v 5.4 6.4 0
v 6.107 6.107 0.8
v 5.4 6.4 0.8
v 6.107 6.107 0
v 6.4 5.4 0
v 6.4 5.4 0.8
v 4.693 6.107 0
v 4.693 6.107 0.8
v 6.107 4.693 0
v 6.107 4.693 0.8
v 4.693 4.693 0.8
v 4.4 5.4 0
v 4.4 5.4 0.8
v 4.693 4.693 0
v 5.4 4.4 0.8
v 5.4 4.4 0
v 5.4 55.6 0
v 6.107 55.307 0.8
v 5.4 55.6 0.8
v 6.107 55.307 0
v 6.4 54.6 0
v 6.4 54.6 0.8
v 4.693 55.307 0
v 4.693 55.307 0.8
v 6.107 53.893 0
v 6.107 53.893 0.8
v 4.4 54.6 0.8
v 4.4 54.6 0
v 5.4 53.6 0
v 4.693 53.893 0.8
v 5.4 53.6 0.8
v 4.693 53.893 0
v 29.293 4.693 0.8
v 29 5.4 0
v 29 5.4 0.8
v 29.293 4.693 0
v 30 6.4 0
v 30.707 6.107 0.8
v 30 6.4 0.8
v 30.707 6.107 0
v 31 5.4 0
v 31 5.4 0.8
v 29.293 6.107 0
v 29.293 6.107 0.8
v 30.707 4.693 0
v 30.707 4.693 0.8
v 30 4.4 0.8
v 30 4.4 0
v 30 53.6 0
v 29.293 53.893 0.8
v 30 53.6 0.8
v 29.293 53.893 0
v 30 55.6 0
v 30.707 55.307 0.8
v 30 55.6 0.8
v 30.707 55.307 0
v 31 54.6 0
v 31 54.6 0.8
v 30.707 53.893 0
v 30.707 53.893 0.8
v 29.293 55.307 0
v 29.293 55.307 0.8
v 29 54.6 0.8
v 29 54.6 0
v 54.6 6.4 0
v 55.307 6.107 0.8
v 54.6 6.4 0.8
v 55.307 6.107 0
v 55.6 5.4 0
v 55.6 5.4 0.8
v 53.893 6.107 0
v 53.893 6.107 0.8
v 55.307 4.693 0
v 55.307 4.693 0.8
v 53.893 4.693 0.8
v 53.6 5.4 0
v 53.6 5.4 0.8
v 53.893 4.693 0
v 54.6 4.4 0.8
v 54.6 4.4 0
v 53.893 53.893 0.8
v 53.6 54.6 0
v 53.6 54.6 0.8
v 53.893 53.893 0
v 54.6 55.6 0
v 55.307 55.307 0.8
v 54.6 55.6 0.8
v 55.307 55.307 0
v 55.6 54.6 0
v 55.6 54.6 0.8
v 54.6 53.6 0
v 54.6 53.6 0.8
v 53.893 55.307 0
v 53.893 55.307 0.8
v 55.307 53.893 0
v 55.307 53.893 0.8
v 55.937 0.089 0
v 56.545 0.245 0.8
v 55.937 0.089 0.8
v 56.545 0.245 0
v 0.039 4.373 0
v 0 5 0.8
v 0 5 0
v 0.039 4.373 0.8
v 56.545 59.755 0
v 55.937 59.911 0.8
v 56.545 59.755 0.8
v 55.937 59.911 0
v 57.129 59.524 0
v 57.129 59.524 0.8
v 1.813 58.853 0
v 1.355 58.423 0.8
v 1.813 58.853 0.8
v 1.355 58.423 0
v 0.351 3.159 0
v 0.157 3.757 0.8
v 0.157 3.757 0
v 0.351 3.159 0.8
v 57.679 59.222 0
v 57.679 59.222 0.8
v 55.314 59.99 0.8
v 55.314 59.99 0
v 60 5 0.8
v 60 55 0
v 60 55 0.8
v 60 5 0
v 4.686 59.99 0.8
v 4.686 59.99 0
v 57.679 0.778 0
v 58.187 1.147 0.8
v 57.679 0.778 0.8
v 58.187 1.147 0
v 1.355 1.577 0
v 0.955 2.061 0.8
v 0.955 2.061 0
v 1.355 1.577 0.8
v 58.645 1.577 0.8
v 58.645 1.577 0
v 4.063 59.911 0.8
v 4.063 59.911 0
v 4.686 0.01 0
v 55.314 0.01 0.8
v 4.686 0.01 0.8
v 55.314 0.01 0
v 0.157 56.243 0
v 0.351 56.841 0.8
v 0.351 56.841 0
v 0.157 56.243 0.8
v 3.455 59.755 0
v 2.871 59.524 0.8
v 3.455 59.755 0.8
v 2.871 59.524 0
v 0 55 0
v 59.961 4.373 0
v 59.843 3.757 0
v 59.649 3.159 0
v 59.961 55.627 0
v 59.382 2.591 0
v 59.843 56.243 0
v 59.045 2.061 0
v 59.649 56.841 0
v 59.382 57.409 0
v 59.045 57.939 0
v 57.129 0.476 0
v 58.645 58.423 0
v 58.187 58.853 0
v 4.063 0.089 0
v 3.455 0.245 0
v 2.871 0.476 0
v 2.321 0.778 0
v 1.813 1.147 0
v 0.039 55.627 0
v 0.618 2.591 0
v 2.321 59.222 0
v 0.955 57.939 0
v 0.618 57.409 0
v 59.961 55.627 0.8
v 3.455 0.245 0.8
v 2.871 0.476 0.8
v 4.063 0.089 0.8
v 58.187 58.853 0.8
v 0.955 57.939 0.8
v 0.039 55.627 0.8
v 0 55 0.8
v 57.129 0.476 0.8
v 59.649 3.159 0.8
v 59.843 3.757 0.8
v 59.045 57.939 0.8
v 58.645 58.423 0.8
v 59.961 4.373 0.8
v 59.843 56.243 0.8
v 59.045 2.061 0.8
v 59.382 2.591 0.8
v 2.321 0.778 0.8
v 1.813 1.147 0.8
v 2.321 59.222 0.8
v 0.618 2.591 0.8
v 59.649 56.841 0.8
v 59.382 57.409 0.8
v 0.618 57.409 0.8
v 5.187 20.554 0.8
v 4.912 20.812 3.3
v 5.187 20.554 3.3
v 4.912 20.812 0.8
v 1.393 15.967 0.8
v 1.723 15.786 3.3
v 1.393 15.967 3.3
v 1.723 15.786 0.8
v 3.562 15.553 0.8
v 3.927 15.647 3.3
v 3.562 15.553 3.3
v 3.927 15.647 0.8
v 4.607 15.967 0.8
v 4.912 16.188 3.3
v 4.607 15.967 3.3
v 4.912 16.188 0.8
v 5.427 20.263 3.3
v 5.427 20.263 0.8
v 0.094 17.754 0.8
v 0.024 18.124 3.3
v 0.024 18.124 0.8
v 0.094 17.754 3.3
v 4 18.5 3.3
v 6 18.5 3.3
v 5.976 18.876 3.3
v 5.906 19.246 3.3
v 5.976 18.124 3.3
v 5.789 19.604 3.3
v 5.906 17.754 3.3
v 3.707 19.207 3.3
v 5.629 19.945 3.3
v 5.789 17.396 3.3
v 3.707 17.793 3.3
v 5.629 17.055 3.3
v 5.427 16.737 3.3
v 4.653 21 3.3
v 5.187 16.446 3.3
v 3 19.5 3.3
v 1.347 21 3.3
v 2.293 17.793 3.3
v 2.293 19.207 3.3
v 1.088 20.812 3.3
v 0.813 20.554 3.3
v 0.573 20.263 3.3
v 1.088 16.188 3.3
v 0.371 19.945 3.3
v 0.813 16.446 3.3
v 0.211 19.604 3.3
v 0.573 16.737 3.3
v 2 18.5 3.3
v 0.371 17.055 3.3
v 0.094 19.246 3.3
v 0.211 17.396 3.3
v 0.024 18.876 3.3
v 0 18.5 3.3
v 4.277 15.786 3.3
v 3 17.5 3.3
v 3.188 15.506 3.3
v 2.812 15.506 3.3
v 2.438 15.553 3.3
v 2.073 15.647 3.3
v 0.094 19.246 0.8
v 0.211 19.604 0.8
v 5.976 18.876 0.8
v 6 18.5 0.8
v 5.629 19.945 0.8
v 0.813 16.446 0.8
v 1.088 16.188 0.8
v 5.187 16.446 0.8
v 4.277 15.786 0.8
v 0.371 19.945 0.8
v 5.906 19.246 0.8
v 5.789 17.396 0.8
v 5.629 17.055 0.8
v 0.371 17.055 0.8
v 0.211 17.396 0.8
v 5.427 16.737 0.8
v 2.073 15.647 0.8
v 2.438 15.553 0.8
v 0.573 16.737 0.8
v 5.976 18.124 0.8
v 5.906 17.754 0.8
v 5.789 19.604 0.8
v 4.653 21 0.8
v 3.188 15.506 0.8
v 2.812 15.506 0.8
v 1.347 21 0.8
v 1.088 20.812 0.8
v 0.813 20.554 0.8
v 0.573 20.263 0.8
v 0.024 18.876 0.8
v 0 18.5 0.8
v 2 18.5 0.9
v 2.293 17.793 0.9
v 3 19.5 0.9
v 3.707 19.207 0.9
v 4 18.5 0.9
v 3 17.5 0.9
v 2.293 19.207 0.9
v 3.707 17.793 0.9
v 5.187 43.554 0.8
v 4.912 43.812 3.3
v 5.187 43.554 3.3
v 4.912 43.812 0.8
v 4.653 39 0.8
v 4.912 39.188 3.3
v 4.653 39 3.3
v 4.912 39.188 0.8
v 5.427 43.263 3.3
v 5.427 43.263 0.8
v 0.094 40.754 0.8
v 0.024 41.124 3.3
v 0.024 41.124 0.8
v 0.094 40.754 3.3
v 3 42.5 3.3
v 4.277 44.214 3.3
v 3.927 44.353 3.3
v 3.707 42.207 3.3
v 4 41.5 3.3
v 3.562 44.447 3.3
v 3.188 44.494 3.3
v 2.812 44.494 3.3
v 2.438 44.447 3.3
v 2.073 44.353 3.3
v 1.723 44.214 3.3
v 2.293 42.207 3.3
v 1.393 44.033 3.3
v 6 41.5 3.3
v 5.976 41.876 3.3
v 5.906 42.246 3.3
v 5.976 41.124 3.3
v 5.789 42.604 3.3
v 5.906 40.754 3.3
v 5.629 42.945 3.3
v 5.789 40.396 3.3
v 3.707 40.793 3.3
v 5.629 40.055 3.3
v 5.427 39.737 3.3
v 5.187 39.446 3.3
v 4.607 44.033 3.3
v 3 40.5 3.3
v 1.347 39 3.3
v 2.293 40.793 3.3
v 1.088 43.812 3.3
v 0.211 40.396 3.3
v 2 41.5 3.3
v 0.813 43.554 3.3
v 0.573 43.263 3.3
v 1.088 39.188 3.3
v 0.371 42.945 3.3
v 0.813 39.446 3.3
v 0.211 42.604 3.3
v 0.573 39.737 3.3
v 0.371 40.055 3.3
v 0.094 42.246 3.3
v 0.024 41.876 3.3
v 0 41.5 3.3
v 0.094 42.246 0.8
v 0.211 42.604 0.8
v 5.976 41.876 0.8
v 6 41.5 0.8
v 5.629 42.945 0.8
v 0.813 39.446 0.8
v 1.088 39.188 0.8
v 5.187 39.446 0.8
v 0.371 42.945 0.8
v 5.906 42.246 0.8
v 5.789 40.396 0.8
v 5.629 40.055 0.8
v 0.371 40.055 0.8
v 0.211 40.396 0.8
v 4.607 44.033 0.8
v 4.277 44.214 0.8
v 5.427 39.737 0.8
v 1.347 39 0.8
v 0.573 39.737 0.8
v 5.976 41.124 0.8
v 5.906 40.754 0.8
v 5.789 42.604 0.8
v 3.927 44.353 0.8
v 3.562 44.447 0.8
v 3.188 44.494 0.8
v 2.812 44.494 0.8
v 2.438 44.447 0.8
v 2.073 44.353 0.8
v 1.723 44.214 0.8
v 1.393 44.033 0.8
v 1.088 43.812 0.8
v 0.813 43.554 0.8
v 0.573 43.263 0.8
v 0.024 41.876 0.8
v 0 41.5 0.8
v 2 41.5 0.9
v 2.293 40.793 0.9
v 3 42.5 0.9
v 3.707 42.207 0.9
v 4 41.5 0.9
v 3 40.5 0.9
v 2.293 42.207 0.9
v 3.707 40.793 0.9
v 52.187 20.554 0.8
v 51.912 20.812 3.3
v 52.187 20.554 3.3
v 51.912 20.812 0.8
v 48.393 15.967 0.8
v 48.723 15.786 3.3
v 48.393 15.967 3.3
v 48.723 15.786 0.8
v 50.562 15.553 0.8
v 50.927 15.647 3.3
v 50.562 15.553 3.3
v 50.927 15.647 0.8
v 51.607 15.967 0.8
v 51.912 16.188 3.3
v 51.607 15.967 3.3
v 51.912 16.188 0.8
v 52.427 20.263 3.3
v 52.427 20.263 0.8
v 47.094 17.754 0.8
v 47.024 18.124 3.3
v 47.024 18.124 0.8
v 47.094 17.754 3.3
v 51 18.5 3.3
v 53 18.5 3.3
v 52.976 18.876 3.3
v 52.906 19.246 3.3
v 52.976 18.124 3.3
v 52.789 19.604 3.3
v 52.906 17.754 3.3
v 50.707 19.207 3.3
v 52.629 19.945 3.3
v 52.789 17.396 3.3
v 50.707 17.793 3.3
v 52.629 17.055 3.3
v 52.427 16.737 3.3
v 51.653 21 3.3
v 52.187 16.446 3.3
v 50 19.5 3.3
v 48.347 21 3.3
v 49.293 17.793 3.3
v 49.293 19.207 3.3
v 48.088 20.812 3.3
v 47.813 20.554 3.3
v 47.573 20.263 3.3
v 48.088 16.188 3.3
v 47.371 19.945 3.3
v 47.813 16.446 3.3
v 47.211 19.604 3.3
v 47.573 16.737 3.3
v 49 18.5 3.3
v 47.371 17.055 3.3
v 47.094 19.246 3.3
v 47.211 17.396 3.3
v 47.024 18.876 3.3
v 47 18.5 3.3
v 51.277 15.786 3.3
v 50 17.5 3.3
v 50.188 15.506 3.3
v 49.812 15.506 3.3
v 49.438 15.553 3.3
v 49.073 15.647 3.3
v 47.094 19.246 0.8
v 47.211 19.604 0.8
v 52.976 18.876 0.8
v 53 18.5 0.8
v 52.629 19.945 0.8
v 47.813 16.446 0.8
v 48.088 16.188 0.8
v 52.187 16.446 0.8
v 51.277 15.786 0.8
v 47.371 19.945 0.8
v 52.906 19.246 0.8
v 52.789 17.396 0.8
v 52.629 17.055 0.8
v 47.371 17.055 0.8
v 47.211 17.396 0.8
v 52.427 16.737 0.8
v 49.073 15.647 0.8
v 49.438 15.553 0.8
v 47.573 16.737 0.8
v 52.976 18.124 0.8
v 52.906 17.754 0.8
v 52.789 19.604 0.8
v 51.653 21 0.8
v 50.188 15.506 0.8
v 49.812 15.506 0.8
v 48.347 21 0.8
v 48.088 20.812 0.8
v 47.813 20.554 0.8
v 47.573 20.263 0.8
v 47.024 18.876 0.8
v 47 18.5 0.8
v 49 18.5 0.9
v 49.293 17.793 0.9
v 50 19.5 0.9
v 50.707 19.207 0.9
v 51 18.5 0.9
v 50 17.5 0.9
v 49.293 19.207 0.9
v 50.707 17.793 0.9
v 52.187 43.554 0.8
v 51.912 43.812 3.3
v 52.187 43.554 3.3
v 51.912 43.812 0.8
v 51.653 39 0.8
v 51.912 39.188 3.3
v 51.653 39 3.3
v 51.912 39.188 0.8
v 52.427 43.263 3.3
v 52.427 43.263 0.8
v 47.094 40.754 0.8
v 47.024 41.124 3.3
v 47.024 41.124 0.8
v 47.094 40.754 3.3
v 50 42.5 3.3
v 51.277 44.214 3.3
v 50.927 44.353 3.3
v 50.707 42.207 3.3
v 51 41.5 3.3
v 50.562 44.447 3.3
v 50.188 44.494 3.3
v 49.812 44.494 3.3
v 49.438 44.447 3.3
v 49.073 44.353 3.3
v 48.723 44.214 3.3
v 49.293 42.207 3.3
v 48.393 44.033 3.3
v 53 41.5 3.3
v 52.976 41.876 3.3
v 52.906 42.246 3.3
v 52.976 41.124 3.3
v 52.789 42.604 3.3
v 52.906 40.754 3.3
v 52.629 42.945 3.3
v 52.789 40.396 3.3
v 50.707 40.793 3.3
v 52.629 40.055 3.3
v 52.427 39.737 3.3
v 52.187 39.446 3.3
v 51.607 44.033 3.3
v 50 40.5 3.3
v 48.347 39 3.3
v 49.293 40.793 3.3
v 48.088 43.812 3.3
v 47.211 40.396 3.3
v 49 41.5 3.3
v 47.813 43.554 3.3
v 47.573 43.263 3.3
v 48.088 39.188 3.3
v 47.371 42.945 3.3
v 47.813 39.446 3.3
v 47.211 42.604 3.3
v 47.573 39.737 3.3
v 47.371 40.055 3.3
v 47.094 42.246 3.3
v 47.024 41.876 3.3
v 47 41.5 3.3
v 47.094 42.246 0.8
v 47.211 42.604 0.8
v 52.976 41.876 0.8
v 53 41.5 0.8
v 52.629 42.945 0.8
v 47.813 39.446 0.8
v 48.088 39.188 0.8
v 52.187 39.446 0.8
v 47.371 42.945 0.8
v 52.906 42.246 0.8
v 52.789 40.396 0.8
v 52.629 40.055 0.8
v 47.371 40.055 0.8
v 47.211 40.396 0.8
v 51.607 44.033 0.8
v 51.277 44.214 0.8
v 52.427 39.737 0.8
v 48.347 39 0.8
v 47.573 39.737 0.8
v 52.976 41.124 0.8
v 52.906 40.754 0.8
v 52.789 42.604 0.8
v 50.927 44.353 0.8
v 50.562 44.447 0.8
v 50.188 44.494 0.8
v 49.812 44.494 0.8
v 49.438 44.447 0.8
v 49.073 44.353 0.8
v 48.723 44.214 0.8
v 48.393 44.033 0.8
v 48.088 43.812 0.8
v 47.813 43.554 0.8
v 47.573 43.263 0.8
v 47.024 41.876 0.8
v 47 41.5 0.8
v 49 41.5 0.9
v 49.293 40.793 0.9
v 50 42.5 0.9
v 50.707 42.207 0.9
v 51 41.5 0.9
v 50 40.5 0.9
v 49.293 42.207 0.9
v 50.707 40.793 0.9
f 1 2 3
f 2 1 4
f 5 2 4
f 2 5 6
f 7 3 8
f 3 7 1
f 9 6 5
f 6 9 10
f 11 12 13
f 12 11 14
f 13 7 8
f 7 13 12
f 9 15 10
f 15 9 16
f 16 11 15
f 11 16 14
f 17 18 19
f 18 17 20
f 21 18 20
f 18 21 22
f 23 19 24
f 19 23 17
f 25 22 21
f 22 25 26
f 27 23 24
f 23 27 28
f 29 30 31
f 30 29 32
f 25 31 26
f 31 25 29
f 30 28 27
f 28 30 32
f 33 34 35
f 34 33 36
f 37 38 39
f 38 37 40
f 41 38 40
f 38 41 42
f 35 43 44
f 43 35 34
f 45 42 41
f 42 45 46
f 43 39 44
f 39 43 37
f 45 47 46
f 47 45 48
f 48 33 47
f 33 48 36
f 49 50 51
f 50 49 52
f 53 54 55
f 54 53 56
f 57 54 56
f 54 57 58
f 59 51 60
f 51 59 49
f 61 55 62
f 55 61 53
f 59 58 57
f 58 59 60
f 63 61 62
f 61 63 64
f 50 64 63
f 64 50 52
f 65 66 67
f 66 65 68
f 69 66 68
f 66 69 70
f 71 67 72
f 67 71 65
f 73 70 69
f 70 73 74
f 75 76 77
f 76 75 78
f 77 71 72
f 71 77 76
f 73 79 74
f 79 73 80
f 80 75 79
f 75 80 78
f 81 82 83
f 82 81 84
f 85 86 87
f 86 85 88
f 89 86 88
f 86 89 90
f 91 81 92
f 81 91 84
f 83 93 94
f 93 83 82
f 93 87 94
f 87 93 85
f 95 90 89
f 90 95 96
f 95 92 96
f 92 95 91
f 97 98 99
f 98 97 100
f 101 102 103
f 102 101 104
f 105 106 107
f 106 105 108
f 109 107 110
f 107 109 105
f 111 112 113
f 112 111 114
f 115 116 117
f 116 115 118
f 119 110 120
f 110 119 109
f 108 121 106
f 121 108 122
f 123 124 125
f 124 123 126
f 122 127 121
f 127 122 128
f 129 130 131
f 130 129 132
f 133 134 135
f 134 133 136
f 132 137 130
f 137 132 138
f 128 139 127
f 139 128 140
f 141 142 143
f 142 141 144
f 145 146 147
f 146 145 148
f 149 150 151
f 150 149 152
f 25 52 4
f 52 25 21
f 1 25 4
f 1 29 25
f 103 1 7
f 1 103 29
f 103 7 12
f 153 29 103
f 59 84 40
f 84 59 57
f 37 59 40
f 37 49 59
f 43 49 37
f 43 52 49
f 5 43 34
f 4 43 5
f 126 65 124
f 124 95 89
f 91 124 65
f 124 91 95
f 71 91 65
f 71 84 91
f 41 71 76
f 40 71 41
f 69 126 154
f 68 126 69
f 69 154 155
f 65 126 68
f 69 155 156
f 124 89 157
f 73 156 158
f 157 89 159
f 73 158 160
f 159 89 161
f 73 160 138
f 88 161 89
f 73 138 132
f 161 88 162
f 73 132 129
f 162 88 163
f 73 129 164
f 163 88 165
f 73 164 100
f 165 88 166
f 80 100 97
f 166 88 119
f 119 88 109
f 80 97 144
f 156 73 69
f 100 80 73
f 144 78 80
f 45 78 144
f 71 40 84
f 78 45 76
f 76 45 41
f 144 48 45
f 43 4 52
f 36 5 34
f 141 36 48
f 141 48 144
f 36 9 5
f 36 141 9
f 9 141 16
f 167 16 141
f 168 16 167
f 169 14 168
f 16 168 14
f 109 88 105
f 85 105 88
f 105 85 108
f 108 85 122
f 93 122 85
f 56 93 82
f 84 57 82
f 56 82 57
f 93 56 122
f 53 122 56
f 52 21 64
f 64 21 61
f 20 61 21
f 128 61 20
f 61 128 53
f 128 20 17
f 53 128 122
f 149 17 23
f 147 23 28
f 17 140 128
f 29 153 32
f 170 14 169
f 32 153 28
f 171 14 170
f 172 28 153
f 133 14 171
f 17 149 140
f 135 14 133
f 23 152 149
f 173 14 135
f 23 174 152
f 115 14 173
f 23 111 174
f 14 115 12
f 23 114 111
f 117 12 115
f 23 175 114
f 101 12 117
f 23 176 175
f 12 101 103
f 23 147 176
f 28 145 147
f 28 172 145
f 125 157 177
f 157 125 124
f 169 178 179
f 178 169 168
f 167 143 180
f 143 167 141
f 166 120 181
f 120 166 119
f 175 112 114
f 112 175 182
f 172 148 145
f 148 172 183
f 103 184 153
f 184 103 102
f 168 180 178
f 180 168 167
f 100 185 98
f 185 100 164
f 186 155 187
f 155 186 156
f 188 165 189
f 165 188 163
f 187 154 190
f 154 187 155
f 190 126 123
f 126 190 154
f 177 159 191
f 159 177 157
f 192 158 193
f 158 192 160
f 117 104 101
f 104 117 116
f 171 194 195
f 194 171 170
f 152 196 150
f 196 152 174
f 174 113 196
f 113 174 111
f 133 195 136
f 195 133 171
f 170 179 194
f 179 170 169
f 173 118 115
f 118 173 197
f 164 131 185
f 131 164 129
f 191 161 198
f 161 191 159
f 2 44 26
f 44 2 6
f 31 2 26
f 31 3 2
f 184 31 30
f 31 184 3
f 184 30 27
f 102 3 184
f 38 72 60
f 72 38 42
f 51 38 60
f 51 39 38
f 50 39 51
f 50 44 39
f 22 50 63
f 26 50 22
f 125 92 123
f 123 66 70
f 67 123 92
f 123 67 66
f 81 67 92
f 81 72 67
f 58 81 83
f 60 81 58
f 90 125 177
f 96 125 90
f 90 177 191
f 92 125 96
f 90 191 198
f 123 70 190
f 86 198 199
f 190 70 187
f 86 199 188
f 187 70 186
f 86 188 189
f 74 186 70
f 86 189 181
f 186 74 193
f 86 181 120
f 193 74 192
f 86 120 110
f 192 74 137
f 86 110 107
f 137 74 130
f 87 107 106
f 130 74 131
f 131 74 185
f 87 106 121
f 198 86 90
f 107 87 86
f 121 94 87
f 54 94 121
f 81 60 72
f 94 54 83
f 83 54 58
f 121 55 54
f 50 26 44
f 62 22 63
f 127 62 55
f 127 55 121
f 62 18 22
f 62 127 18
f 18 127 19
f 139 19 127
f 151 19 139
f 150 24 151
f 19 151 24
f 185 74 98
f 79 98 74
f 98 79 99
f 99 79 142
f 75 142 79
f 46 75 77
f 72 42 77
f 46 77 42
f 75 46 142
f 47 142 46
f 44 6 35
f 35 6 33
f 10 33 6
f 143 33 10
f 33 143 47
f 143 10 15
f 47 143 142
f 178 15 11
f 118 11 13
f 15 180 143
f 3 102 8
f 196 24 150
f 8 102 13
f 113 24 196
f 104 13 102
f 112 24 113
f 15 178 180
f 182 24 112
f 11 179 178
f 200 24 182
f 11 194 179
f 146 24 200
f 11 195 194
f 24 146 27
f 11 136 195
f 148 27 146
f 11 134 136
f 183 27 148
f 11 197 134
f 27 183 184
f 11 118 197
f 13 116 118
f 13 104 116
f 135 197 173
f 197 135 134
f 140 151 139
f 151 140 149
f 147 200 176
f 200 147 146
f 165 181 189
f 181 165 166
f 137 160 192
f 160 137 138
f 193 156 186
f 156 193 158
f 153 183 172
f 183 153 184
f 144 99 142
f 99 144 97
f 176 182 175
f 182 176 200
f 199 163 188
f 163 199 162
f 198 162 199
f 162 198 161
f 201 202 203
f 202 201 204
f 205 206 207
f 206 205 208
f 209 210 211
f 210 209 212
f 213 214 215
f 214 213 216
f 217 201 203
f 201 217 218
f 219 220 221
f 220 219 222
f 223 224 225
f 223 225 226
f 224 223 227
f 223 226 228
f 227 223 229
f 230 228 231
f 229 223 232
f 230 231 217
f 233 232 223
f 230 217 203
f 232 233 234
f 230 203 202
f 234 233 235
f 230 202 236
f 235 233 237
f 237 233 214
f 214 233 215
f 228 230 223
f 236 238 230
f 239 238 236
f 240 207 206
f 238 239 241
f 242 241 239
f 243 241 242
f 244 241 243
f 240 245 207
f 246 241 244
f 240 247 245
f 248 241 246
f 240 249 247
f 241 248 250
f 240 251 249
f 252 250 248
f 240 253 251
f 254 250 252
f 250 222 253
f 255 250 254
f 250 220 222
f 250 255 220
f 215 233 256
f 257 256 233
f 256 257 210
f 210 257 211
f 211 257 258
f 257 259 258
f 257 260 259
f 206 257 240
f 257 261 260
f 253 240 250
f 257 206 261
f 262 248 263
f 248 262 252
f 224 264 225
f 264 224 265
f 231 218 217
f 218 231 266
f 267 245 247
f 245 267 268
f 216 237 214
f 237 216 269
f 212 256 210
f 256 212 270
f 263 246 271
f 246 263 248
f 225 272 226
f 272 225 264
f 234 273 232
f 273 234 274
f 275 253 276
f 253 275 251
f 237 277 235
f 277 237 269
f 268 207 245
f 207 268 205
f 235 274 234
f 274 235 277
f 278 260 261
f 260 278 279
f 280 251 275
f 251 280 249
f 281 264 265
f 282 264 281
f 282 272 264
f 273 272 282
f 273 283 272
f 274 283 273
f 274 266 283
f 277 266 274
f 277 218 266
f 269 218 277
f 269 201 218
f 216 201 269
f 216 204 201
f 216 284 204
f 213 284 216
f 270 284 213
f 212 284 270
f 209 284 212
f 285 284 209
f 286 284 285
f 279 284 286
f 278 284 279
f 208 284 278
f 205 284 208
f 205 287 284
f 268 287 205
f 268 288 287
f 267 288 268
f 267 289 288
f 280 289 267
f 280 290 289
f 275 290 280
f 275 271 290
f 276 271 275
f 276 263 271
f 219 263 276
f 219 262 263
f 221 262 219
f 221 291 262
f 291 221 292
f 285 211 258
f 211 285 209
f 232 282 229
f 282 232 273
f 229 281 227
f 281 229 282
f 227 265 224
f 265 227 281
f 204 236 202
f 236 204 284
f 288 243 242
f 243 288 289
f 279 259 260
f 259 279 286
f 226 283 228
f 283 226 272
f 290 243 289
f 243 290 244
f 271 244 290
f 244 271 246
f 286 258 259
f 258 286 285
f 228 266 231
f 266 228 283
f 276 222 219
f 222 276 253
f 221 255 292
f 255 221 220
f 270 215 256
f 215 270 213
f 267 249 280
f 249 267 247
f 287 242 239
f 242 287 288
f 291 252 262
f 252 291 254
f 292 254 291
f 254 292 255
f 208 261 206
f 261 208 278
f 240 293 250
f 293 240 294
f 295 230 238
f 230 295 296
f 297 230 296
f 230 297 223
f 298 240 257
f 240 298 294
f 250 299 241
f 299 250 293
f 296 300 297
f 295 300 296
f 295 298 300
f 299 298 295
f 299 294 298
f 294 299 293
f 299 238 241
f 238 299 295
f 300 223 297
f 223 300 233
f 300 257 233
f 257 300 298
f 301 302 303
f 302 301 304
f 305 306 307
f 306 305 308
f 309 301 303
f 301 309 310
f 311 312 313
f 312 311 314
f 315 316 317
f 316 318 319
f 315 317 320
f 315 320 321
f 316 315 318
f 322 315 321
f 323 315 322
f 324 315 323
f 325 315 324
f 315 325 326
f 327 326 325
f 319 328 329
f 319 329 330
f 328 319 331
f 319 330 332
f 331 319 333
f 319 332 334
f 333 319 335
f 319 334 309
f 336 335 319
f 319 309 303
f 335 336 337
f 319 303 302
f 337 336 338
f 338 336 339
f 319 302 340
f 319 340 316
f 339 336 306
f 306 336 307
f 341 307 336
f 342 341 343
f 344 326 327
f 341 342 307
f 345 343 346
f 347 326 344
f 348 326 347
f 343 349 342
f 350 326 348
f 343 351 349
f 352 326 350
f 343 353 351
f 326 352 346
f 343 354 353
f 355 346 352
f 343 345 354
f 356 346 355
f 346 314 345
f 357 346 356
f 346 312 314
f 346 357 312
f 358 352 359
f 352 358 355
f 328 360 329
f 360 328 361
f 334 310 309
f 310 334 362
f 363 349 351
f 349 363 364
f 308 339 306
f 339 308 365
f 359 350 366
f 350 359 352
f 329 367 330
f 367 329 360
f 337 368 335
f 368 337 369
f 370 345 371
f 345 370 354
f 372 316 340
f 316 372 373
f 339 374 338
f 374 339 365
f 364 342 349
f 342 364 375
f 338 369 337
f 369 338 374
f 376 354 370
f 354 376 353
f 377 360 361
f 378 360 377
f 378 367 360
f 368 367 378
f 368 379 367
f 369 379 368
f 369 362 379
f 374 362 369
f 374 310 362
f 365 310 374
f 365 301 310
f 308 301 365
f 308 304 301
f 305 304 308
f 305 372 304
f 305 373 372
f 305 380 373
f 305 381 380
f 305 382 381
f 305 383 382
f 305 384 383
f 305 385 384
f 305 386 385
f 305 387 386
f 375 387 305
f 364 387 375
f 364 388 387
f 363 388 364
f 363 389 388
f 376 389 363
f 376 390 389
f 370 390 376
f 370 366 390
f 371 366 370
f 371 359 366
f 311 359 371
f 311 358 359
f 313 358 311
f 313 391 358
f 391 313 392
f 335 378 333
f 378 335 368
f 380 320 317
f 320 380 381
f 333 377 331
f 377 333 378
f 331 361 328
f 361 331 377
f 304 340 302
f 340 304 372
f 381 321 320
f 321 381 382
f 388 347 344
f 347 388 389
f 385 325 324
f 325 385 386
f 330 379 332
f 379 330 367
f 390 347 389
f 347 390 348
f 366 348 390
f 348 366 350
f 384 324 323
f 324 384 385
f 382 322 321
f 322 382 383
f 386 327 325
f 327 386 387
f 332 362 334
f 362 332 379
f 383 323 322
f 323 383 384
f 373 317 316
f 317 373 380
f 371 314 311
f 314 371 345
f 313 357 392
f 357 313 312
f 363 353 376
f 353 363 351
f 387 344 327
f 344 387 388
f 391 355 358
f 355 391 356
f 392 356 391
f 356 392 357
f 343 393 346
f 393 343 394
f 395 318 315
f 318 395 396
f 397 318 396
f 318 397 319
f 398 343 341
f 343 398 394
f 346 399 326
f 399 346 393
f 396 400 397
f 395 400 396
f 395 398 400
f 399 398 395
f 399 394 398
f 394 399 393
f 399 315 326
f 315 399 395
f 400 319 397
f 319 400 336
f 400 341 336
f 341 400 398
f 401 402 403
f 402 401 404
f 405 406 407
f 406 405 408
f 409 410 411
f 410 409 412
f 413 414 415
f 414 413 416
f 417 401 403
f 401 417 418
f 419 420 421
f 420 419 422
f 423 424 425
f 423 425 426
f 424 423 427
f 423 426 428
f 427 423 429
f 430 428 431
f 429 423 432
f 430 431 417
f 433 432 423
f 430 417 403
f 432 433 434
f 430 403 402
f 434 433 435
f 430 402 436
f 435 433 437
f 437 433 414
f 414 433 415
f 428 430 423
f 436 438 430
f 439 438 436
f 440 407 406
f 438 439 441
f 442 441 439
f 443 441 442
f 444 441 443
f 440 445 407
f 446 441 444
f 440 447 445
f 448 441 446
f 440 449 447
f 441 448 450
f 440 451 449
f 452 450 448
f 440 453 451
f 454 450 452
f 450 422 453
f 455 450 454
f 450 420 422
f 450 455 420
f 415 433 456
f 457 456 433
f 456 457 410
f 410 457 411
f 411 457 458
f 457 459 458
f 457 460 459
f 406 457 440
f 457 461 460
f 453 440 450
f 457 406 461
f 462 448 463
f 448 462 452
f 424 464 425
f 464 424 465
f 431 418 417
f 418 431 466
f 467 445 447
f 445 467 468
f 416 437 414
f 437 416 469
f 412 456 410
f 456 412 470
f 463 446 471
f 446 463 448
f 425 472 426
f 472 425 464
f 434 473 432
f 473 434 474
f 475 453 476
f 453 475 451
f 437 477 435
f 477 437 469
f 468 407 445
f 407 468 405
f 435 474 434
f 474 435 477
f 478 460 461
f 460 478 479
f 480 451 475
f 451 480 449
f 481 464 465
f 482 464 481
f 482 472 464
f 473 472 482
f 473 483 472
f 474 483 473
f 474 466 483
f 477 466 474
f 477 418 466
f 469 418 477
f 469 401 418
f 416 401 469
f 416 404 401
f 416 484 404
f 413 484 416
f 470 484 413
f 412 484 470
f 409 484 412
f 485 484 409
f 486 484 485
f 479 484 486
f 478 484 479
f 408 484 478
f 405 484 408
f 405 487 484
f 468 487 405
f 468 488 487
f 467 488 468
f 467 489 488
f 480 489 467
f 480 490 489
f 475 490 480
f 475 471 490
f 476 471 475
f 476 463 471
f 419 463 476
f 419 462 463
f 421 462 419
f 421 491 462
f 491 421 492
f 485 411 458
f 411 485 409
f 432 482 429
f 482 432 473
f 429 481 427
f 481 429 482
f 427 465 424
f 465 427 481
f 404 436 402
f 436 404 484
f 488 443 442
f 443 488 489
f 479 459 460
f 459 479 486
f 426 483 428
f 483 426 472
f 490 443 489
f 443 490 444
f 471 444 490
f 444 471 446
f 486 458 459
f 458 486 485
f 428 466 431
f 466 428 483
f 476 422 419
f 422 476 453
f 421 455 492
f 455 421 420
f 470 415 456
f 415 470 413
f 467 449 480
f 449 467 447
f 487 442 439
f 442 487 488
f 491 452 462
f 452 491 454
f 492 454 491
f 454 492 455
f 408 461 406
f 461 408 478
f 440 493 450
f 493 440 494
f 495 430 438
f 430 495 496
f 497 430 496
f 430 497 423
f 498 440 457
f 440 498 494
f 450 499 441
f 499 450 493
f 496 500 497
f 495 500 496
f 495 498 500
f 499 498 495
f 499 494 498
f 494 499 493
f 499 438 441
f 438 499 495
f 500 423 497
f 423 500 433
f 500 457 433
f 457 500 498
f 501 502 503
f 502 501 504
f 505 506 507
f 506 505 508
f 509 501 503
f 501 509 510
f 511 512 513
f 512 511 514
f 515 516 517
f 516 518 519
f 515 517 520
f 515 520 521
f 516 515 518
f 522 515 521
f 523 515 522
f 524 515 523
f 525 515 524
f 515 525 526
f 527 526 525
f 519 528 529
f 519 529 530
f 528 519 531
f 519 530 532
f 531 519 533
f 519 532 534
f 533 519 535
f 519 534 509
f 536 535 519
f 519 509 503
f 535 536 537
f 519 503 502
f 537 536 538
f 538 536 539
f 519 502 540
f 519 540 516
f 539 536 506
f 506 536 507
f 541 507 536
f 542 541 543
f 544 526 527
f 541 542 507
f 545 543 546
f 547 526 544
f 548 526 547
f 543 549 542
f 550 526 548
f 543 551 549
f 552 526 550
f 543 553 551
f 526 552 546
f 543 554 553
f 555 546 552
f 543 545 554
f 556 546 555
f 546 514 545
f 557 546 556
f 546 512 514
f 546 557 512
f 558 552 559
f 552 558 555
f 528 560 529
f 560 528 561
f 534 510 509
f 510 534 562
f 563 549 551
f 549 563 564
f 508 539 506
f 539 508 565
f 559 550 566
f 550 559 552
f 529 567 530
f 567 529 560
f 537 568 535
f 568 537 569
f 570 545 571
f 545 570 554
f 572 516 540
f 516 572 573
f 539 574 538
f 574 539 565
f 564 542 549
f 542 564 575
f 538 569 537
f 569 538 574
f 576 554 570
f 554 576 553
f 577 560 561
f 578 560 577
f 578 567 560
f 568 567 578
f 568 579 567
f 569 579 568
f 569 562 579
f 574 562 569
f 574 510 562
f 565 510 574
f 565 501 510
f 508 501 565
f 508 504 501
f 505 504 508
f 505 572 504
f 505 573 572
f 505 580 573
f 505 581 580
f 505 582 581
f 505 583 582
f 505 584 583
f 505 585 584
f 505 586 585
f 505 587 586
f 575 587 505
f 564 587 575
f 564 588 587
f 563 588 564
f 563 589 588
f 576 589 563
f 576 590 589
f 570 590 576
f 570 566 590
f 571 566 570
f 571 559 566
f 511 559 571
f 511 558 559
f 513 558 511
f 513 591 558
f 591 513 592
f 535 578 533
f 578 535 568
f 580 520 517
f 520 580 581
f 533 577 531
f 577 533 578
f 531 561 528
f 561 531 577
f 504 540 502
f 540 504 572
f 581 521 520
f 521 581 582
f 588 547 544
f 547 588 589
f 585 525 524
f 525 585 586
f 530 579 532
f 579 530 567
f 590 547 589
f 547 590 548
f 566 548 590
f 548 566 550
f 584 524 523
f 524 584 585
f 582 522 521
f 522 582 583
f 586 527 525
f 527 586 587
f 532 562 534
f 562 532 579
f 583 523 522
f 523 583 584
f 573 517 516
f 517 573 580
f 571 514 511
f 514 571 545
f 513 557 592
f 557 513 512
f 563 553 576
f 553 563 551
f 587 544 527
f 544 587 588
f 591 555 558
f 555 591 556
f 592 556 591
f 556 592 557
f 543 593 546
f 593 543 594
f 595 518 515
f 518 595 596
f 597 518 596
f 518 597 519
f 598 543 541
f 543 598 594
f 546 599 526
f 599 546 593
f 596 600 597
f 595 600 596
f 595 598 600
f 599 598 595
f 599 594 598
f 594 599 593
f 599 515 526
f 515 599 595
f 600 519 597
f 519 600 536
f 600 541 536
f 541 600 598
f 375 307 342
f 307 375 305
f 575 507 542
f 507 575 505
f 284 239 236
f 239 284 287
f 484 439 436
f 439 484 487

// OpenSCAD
hole_d = 3;
esp32_holes_spacing_w = 23;
esp32_holes_spacing_h = 47;
led = 8.2;

$fn = 50;

difference ()
{
  translate ([ 5, 5, 0 ]) minkowski ()
  {
    cube ([ 50, 50, .4 ]);
    cylinder (h = .4, r = 5);
  }
  x = 2.8;
  translate ([ -x, -x, 0 ]) for (i = [ 1, 4, 7 ])
  {
    translate ([ i * led, led, -1 ]) cylinder (h = 5, r = 1, $fn = 8);
    translate ([ i * led, led * 7, -1 ]) cylinder (h = 5, r = 1, $fn = 8);
  }
}
module
entretoise ()
{
  difference ()
  {
    cylinder (h = 2.5, d = hole_d + 3);
    translate ([ 0, 0, .1 ]) cylinder (h = 2.5, d = 2, $fn = 8);
  }
}

difference ()
{
  union ()
  {
    gap = 3;
    translate ([ gap, 30 - esp32_holes_spacing_w / 2, .8 ]) entretoise ();
    translate ([ gap, 30 + esp32_holes_spacing_w / 2, .8 ]) entretoise ();
    translate (
        [ gap + esp32_holes_spacing_h, 30 - esp32_holes_spacing_w / 2, .8 ])
        entretoise ();
    translate (
        [ gap + esp32_holes_spacing_h, 30 + esp32_holes_spacing_w / 2, .8 ])
        entretoise ();
  }
  translate ([ 0, 30 - 9, .8 ]) cube ([ 60, 18, 3 ]);
}
